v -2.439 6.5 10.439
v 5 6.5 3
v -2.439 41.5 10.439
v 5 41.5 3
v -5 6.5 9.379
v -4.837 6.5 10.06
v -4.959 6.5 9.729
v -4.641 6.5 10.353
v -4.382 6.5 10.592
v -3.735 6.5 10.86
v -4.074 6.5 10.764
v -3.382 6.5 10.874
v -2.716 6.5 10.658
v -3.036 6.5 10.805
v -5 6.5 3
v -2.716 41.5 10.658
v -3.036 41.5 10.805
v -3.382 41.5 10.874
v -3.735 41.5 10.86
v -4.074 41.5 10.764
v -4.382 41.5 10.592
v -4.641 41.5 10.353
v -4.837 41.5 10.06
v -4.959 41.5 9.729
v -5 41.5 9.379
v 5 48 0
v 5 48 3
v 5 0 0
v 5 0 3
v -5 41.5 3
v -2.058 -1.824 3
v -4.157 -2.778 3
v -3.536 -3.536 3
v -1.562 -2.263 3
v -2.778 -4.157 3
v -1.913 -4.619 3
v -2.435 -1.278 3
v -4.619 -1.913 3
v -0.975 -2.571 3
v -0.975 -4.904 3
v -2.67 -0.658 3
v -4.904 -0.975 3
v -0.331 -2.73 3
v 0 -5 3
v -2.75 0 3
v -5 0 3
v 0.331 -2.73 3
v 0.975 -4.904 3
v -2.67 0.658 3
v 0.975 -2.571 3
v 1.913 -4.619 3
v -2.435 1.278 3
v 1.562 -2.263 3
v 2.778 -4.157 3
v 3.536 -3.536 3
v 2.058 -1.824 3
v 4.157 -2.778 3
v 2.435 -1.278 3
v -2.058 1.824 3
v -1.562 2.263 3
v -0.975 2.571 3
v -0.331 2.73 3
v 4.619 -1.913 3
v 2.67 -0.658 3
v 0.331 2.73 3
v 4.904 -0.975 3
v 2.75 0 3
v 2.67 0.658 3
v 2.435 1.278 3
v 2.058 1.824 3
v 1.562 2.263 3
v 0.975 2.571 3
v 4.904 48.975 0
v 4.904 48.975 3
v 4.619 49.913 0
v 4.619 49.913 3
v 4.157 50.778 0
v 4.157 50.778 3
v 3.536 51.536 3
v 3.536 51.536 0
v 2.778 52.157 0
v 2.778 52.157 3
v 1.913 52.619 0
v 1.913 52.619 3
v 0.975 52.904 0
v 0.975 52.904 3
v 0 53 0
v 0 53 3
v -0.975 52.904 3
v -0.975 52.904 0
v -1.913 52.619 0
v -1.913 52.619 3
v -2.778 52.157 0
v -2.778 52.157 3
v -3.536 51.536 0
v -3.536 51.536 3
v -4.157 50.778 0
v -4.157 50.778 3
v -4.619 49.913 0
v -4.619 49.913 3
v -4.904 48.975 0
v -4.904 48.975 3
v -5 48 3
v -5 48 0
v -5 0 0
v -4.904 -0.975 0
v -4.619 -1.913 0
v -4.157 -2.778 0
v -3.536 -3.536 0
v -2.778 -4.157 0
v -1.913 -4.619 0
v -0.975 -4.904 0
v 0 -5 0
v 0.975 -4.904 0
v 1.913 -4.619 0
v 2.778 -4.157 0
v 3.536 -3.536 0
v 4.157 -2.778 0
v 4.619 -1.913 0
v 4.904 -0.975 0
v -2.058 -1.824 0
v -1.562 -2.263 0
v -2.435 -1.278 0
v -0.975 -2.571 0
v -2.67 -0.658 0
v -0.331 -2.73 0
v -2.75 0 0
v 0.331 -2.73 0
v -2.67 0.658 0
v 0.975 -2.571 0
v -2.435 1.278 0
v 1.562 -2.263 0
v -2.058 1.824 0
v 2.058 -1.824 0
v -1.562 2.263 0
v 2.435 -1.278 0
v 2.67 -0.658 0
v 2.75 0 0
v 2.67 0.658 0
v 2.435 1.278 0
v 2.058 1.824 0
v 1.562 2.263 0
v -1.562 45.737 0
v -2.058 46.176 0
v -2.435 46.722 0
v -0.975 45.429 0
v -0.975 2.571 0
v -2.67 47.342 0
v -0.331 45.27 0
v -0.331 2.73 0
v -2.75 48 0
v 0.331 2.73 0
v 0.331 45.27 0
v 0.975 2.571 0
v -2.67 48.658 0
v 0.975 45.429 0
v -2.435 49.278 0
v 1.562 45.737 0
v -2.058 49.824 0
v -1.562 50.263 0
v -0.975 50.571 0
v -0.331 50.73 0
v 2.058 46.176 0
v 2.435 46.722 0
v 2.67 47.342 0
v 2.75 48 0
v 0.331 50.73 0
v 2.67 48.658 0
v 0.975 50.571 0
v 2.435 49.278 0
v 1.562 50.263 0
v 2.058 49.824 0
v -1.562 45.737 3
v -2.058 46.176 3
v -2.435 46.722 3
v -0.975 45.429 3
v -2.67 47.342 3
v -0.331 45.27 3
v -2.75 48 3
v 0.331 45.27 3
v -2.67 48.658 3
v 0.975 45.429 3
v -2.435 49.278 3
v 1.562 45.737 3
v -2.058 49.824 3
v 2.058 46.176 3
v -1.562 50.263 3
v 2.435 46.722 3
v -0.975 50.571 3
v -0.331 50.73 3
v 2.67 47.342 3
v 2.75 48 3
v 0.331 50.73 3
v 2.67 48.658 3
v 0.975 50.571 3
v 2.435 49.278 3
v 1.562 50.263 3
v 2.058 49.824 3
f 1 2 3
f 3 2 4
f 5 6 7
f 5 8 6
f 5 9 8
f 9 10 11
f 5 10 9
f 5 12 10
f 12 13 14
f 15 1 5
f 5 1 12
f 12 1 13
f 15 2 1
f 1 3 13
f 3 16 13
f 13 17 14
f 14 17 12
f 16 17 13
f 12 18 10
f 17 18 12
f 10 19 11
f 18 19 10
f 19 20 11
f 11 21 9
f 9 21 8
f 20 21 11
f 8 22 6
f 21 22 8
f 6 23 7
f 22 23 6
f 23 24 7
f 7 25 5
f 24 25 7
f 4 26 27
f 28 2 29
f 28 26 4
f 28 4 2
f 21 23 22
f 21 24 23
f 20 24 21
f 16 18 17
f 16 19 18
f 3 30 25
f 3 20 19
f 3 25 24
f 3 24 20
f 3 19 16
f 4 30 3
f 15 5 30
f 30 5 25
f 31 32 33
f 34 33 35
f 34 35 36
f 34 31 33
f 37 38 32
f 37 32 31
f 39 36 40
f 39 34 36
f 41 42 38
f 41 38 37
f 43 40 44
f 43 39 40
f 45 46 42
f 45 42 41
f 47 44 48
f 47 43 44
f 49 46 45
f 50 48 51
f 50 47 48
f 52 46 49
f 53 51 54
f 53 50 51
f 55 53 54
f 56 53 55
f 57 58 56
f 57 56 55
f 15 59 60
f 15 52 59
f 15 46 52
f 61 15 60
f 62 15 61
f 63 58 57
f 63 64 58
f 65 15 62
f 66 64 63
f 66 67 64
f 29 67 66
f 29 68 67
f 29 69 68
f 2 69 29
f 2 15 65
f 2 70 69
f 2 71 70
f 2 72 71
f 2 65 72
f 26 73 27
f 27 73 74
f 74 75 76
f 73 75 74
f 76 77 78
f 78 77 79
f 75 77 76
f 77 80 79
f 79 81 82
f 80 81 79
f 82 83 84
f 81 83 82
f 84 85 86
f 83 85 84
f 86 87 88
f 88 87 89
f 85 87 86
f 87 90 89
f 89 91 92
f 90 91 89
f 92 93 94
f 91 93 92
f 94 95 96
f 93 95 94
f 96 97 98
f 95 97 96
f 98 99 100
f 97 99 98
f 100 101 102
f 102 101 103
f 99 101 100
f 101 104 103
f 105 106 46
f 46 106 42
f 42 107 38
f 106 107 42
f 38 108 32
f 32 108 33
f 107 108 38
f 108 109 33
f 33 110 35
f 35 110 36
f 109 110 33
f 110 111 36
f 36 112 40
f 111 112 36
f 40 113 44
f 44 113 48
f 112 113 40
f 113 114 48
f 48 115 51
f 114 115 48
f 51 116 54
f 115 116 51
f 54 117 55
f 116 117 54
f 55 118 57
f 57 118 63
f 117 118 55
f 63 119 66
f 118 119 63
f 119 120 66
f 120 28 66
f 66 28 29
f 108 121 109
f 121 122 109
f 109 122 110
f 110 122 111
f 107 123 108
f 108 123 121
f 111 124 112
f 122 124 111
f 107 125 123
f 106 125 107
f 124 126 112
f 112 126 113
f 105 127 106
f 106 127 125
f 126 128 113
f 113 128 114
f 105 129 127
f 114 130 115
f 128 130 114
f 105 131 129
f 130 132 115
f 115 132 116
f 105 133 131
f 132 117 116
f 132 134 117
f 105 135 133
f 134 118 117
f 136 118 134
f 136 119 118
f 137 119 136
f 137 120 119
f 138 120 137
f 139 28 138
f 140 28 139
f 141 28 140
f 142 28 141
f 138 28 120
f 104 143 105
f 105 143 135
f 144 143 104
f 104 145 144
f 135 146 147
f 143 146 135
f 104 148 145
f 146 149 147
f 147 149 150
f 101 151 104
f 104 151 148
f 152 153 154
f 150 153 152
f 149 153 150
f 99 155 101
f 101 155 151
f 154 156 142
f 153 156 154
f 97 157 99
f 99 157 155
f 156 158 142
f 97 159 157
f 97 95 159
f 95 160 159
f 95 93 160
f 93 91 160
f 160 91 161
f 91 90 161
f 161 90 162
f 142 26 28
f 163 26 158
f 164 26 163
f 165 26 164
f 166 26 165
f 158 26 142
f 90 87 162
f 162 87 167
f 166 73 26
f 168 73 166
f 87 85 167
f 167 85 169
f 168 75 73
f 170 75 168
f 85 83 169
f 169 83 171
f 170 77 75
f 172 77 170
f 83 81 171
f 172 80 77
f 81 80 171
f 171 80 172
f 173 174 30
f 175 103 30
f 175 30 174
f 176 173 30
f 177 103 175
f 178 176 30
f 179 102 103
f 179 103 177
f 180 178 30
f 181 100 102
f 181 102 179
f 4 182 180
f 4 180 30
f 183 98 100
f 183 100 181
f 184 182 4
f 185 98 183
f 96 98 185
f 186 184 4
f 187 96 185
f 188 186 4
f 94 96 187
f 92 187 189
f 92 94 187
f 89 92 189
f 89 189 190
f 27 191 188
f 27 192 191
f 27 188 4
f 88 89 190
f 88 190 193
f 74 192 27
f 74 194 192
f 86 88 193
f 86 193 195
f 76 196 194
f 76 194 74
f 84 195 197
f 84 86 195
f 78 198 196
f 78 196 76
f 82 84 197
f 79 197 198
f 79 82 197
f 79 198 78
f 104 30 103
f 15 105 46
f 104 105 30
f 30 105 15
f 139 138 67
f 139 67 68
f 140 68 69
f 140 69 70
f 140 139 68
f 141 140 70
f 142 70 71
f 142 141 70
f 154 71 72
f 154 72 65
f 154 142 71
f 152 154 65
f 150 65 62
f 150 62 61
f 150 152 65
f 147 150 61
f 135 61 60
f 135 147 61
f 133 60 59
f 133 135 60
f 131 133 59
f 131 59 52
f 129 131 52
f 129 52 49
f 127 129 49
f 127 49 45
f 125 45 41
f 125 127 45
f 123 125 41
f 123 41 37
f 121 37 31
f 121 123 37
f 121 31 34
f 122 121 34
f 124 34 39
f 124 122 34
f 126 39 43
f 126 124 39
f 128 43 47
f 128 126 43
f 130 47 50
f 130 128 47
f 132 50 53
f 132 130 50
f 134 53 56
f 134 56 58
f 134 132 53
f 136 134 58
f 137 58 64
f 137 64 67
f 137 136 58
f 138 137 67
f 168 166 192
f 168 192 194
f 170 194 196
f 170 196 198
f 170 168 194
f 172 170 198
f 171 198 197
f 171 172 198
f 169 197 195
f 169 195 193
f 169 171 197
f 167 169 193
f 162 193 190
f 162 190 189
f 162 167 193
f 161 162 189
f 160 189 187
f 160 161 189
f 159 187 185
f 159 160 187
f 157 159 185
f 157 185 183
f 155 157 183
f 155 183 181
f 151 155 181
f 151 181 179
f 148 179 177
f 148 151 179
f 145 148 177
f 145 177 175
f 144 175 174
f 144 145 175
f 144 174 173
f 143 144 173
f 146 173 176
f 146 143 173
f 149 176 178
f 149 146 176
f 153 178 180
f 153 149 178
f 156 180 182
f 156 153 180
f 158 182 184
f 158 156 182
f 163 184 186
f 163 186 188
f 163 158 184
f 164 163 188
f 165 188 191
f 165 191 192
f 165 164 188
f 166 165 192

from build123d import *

# Parameters (mm, degrees)
SKETCH_R     = 2.75
PAD_DEPTH    = 3
PAD001_DEPTH = 35
FILLET_R     = 1.5


with BuildPart() as part:
    # Sketch → Pad (new body)
    with BuildSketch(Plane.XY):
        with BuildLine():
            ThreePointArc((5, 48), (0, 53), (-5, 48))
            Line((-5, 48), (-5, 0))
            ThreePointArc((-5, 0), (0, -5), (5, 0))
            Line((5, 48), (5, 0))
        make_face()
        with Locations((0, 48)):
            Circle(SKETCH_R, mode=Mode.SUBTRACT)
        Circle(SKETCH_R, mode=Mode.SUBTRACT)
    extrude(amount=PAD_DEPTH)

    # Sketch001 → Pad001 (join)
    with BuildSketch(Plane.XZ.offset(-6.5)):
        Polygon((-5, 3), (-5, 13), (5, 3), align=None)
    extrude(amount=-PAD001_DEPTH)

    # Fillet
    fillet_edges = [part.edges().sort_by_distance(p)[0] for p in [
        (-5, 24, 13),
    ]]
    fillet(fillet_edges, radius=FILLET_R)


solid = part.part
